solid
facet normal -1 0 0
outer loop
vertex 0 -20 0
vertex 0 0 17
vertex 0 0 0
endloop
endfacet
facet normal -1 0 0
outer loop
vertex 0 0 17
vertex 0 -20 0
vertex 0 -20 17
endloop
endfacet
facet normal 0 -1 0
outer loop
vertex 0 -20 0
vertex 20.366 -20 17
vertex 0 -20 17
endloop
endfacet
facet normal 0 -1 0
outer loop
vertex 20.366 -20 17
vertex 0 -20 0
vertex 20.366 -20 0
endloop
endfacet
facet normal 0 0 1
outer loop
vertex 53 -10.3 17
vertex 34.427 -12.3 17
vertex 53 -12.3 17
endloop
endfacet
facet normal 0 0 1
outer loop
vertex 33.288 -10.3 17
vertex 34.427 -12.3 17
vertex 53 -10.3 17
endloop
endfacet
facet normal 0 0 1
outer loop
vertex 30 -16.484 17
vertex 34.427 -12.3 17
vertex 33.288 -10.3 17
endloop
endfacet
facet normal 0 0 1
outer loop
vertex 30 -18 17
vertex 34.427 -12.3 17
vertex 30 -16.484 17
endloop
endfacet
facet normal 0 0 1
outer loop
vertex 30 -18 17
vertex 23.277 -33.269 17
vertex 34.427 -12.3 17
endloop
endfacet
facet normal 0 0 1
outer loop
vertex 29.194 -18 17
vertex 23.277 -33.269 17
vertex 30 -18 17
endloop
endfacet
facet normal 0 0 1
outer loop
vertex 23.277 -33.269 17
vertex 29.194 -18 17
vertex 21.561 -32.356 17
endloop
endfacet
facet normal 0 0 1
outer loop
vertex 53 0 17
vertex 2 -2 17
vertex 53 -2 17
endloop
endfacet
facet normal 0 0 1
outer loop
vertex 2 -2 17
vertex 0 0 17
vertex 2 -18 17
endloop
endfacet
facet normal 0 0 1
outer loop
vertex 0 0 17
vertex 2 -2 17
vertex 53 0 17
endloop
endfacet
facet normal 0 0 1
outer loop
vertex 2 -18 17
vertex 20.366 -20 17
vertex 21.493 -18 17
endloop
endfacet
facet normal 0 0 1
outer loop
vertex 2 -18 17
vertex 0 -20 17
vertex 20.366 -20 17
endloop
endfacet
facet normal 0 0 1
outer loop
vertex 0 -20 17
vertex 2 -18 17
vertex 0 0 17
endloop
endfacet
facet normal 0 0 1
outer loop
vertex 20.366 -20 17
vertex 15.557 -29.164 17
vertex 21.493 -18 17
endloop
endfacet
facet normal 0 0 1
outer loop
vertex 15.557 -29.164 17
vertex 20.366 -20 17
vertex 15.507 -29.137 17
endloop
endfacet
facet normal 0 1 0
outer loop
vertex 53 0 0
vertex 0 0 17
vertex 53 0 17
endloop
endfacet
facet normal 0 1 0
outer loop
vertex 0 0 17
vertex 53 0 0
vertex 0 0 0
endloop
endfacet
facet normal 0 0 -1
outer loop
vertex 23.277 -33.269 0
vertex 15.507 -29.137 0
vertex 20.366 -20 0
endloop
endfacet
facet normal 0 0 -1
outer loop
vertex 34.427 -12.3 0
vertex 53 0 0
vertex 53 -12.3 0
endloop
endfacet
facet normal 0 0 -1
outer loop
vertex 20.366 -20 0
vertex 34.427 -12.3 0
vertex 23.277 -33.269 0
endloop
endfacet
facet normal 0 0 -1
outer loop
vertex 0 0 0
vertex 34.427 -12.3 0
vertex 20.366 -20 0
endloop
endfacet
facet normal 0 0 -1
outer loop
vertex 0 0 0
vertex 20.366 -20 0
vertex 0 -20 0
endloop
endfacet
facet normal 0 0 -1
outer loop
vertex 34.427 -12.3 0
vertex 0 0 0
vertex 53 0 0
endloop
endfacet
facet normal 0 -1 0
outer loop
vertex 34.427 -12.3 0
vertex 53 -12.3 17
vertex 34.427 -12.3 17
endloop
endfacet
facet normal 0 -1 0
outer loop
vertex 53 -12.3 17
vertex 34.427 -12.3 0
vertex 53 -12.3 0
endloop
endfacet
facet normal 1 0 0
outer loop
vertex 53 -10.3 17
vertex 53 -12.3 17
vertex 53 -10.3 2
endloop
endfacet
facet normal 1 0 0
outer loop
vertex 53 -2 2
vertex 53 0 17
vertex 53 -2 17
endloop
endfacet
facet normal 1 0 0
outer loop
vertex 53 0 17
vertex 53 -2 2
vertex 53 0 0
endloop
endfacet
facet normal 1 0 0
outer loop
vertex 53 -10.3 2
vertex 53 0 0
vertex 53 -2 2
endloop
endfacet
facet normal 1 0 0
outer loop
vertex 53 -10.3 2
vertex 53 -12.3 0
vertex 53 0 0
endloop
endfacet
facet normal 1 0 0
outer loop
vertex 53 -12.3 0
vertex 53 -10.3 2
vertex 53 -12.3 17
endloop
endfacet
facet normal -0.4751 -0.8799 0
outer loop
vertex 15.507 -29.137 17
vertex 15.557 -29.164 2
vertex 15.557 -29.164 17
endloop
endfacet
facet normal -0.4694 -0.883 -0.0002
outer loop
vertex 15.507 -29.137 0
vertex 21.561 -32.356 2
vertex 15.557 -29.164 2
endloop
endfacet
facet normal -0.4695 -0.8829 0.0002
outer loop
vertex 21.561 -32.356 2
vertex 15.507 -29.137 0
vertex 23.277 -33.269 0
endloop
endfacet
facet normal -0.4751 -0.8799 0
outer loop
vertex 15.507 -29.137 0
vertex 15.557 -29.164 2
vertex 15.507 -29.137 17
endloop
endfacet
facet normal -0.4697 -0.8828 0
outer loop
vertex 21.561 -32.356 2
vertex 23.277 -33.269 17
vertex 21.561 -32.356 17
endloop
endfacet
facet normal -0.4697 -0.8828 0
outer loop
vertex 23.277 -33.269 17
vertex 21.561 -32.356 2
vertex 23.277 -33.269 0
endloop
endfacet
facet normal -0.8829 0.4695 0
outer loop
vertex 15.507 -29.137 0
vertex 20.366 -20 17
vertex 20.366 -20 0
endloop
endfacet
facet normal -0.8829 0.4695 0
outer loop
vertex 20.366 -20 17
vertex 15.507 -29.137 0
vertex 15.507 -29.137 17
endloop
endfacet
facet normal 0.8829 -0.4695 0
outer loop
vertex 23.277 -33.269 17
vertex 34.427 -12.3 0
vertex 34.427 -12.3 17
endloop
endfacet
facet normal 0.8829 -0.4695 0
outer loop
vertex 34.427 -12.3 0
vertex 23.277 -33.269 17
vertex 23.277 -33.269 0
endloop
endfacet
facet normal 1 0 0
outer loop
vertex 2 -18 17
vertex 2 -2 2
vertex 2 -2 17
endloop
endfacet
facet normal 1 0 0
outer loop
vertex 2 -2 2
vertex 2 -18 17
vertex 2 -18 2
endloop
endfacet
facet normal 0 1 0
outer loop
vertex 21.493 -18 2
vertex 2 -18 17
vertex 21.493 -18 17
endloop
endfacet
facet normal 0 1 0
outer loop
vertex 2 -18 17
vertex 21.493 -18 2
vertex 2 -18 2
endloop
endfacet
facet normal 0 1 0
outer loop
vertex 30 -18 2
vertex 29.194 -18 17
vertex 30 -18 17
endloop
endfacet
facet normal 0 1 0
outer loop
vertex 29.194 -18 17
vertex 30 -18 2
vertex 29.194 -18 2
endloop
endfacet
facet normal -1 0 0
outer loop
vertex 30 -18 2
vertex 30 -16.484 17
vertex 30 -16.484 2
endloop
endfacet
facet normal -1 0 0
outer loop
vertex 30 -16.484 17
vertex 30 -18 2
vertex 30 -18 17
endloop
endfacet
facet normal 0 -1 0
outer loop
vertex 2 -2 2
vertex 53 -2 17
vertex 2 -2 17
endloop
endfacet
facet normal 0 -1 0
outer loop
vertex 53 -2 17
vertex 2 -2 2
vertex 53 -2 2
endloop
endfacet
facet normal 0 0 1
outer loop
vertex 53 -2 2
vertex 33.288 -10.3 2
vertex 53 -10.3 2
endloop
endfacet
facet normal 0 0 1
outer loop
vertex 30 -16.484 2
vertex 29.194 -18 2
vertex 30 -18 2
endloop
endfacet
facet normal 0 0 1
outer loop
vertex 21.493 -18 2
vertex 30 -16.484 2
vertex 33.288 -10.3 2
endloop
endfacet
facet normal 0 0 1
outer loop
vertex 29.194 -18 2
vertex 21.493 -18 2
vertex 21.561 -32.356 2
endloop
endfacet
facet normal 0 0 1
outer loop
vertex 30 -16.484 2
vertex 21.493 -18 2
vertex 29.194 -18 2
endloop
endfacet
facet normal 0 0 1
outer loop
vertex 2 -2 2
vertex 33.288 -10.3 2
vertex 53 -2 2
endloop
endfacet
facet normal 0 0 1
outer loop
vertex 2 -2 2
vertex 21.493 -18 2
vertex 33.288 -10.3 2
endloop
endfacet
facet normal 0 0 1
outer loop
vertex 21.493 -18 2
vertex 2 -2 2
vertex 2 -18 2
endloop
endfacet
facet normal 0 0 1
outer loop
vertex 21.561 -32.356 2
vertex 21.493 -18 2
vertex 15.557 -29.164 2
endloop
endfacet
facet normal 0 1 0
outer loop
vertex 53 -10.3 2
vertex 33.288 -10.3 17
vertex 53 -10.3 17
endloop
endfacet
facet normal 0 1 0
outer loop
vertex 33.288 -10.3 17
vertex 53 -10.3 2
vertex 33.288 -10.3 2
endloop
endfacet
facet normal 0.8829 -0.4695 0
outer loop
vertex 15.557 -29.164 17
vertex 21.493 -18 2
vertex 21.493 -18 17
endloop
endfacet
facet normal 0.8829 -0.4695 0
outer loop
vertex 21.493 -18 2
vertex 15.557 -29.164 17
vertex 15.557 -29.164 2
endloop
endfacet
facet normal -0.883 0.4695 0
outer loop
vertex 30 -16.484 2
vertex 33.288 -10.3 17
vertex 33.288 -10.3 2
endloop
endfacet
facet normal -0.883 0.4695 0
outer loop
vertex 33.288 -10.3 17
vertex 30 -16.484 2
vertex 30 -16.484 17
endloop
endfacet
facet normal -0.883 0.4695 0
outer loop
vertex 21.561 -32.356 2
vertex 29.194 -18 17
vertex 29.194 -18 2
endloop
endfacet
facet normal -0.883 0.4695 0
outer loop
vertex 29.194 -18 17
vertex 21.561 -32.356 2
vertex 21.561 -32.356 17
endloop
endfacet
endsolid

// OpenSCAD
back_len=28;
front_len=25;
deep = 17;
height=33;
position=31;
rotation=28;
wall=2;

//all lengths are +1mm to allow some wiggling
keyboard_thickness_front= 8.3;
keyboard_thickness_back = 16;
tablet_thickness = 6.8;

module holder(){
difference(){
    union(){
cube([back_len,deep,keyboard_thickness_back+2*wall]);
translate([back_len,0,0])cube([front_len,deep,keyboard_thickness_front+2*wall]);
 translate([position,0,0])rotate([0,-rotation,0])cube([tablet_thickness+2,deep,height]);
    }

translate([2,wall,wall])cube([back_len,deep,keyboard_thickness_back]);

translate([back_len-2,2,2])cube([front_len+4,deep,keyboard_thickness_front]);

translate([position-1,2,2])rotate([0,-rotation,0])cube([tablet_thickness,deep,height+4]);
    
}
}

rotate([90,0,0])holder();
